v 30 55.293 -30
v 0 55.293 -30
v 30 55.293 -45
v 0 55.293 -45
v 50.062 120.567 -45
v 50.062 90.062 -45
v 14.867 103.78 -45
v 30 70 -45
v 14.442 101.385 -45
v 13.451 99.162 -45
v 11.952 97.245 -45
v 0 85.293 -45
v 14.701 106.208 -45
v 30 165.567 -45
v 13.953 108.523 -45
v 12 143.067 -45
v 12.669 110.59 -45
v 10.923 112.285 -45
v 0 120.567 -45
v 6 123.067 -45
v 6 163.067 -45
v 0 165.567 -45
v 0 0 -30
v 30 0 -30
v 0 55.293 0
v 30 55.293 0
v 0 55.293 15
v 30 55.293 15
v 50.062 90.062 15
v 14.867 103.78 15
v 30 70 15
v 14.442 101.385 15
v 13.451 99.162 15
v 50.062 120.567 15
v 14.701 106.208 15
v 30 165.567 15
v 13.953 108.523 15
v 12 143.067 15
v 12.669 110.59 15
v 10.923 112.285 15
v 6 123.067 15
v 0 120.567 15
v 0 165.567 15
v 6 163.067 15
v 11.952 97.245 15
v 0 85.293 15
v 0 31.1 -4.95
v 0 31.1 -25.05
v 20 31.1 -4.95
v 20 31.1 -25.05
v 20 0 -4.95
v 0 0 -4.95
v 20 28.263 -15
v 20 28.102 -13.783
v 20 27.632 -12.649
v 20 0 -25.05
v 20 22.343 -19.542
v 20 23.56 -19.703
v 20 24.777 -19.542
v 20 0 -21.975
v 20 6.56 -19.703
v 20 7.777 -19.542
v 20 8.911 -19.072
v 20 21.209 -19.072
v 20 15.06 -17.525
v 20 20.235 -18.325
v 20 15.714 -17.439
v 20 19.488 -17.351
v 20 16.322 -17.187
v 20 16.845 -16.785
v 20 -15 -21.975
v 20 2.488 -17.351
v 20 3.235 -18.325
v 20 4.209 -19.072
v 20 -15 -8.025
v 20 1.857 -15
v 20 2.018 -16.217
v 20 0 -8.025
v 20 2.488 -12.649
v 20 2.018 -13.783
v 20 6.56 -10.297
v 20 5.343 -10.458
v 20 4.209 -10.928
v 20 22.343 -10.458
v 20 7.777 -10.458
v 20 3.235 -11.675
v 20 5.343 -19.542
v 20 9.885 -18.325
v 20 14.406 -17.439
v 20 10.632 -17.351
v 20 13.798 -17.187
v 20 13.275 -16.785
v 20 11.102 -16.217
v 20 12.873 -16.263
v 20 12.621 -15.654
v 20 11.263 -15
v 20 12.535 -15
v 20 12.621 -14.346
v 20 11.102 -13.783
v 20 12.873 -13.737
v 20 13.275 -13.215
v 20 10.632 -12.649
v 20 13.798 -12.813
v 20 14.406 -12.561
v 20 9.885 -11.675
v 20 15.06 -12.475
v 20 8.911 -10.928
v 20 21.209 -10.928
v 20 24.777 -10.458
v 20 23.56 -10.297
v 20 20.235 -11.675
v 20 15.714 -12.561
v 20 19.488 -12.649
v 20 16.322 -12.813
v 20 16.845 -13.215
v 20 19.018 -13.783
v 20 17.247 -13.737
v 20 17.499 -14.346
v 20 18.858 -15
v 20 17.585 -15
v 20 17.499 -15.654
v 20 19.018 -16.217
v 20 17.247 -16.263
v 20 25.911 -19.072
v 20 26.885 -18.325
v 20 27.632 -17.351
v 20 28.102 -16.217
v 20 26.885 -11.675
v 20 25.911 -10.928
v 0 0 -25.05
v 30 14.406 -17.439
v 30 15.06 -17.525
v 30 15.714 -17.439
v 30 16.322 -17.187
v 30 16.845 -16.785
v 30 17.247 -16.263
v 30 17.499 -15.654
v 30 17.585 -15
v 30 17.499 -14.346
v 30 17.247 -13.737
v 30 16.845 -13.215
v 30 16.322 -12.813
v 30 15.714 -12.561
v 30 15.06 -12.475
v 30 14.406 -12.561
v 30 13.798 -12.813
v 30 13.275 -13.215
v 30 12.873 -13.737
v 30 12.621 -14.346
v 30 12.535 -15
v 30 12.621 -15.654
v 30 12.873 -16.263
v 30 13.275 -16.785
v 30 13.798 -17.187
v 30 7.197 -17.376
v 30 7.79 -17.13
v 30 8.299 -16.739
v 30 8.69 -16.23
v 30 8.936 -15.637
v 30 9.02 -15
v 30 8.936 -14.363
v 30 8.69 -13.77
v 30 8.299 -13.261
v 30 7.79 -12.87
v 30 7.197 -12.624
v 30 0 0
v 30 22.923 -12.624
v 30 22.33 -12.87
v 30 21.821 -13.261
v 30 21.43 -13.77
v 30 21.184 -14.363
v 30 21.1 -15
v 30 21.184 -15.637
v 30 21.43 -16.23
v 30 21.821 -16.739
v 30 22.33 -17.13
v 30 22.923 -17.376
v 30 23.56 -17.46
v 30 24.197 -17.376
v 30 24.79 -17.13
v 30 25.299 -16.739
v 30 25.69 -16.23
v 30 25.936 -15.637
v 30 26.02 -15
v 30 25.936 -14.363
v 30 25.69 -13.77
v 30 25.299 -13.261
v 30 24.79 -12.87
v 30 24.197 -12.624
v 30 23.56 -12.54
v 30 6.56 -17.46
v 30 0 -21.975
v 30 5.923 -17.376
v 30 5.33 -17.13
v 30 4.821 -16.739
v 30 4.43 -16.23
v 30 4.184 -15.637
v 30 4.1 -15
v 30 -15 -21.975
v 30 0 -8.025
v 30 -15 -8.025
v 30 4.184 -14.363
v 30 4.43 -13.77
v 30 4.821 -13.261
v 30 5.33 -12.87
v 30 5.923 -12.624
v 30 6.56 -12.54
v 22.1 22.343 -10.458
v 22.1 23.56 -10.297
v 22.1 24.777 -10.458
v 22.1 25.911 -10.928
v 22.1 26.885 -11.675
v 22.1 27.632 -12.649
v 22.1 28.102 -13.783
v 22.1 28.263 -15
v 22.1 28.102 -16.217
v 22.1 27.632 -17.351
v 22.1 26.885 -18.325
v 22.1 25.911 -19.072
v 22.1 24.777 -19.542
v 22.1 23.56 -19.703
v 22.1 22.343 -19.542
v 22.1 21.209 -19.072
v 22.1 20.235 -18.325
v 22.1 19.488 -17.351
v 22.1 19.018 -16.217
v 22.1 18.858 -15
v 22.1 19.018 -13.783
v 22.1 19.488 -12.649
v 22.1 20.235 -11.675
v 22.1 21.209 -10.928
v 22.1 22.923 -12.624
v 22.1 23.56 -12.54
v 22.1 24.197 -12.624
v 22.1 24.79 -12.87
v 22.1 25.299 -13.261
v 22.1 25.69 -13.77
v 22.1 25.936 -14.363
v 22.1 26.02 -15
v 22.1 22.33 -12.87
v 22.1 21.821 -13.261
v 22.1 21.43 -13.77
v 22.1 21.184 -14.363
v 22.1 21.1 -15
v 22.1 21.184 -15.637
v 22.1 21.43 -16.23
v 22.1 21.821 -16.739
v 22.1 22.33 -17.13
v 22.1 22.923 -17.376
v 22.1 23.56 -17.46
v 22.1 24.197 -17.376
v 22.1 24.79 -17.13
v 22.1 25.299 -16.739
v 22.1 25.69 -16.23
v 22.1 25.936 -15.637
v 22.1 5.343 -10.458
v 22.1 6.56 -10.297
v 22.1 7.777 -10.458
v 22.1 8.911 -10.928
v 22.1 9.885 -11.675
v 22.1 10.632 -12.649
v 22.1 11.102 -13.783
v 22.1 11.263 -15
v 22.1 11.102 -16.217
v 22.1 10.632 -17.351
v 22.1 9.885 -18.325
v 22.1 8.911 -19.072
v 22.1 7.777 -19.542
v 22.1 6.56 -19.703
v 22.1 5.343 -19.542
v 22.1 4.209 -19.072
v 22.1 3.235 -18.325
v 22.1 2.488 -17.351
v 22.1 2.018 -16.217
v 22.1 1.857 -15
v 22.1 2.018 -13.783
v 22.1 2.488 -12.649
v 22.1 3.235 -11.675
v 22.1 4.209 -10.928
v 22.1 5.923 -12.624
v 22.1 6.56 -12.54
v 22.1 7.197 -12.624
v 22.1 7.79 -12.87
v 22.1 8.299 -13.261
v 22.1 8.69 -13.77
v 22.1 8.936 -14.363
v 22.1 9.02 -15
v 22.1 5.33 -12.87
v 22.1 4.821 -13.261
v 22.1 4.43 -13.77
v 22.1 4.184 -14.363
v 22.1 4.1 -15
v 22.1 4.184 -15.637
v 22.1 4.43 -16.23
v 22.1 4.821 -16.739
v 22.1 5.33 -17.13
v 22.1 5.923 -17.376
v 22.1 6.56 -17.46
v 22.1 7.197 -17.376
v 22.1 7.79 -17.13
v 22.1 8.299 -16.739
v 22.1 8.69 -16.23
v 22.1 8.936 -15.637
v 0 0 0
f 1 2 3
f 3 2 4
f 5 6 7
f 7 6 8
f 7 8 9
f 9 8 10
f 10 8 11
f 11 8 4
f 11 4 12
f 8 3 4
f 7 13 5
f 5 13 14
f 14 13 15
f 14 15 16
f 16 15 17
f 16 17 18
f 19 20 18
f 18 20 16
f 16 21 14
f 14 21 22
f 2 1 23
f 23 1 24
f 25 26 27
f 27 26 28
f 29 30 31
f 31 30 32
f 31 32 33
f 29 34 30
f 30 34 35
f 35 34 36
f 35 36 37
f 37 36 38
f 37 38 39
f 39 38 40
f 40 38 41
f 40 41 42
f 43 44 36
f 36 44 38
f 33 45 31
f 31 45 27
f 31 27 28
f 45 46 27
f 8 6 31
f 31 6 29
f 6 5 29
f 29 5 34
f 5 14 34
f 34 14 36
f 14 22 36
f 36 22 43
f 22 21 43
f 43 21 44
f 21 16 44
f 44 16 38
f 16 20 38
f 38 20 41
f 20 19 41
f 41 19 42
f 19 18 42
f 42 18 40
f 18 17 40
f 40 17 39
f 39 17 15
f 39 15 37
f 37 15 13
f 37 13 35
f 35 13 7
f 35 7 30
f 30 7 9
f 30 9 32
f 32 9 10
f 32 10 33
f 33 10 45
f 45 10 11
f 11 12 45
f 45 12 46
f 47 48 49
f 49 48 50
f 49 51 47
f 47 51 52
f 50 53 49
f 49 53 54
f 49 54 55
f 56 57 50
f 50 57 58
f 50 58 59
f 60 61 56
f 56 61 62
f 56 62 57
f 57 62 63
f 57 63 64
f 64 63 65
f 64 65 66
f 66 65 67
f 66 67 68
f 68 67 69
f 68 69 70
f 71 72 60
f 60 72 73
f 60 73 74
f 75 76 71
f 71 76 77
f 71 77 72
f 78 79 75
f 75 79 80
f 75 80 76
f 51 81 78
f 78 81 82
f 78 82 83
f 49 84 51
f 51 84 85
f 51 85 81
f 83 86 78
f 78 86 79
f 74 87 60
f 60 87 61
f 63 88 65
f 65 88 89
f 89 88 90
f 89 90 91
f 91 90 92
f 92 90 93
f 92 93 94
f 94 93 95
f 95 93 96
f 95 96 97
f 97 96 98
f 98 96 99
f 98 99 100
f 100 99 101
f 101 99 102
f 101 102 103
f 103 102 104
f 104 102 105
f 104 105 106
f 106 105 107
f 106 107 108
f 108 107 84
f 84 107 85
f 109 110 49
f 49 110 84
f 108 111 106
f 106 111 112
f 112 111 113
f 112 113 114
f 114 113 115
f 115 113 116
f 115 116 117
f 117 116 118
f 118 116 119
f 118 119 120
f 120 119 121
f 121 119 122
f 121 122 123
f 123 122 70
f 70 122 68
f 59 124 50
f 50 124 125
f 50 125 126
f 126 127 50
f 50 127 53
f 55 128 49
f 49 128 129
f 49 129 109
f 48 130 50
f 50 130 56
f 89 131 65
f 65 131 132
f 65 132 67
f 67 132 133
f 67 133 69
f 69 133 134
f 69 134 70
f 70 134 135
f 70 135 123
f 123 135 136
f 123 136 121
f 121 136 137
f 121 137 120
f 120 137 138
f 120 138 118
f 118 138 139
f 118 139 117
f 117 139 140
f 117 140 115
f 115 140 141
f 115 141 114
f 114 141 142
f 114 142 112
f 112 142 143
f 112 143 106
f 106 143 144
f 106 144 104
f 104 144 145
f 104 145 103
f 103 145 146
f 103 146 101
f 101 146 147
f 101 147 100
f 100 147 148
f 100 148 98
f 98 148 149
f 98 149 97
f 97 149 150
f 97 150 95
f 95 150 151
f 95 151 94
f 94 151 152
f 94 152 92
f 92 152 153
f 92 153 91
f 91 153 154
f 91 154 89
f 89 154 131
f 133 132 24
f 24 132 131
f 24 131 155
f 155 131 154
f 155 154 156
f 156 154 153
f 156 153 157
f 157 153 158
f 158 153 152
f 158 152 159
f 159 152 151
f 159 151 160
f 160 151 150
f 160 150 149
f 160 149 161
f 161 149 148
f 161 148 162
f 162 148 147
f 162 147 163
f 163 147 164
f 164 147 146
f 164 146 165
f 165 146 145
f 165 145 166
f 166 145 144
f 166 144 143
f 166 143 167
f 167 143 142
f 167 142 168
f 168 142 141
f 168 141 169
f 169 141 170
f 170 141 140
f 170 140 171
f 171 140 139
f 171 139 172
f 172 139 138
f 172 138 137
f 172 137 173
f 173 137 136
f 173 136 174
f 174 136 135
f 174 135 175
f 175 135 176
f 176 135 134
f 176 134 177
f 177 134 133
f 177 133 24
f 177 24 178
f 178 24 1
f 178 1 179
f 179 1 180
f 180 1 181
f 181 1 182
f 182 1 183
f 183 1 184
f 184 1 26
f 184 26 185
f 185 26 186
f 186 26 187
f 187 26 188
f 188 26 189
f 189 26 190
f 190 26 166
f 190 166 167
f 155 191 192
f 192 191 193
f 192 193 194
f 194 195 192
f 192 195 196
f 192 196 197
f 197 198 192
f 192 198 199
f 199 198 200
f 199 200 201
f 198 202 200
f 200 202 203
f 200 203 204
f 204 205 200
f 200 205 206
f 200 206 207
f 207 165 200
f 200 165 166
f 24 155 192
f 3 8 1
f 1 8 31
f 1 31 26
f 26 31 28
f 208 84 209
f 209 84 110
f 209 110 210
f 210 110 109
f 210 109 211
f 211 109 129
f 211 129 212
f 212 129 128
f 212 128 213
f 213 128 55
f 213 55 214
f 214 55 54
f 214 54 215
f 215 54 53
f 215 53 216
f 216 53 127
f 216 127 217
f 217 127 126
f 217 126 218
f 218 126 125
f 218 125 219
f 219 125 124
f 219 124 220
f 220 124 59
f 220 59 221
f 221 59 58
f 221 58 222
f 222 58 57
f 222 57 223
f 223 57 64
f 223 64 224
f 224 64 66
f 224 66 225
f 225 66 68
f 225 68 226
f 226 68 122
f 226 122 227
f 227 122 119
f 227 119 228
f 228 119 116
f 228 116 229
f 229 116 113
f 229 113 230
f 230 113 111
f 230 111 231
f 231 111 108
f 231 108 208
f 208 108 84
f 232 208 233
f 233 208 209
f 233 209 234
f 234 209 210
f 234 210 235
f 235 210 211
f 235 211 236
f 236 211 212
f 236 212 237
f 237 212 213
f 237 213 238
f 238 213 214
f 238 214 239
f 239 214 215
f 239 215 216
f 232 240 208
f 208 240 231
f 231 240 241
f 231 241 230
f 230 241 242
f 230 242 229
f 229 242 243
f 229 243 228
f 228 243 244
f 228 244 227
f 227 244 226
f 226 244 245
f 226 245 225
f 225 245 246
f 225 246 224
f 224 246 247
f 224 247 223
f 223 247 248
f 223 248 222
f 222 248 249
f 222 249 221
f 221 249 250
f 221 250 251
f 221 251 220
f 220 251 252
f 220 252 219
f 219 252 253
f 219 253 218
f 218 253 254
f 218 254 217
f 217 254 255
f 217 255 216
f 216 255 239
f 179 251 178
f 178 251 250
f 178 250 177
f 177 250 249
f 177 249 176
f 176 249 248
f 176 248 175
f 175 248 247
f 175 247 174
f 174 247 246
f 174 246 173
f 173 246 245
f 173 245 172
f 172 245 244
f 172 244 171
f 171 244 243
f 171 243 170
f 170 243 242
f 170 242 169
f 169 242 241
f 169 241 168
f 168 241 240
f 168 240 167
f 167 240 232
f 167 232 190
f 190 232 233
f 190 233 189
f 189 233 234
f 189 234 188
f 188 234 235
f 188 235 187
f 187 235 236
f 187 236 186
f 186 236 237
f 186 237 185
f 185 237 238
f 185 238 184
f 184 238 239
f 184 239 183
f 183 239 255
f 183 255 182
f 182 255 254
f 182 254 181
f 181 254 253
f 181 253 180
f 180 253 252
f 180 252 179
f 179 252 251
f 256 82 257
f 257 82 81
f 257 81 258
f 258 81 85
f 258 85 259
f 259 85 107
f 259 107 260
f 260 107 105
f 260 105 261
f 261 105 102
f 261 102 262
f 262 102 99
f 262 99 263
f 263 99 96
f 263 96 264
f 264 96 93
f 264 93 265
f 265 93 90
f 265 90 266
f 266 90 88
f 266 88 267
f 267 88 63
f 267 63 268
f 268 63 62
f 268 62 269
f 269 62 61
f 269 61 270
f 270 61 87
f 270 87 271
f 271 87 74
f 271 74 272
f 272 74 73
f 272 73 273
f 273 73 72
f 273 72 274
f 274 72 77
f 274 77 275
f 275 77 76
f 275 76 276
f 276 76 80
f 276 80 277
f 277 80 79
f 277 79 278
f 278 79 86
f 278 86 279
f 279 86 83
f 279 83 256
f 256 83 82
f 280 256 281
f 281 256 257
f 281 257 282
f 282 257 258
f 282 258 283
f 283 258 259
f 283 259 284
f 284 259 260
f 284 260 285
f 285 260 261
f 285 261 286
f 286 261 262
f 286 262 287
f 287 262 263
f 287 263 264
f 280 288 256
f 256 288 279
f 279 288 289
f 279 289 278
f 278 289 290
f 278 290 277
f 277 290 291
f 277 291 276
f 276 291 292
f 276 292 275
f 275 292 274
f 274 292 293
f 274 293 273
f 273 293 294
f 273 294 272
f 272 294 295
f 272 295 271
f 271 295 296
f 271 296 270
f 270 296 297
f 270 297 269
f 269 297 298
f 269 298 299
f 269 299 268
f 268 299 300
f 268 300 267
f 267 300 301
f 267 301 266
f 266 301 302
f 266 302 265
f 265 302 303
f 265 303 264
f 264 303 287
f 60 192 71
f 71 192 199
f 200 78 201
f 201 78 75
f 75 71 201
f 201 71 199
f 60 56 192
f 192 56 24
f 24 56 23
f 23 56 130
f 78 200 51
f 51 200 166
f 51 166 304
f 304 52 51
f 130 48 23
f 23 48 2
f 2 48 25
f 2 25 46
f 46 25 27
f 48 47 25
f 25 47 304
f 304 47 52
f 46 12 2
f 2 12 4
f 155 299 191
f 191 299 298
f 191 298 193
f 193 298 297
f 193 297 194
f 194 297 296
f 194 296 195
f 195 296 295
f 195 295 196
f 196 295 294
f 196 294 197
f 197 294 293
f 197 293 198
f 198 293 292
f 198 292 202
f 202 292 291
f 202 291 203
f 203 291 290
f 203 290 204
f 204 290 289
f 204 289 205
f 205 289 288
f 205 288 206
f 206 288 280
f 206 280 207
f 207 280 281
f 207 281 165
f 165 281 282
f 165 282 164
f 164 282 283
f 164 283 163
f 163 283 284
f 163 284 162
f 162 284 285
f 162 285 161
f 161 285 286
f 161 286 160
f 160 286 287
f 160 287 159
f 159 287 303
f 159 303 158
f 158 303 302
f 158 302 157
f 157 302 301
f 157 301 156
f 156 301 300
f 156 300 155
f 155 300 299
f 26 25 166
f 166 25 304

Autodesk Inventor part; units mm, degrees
ref_plane "YZ Plane" through (0, 0, 0) normal (1, 0, 0) x (0, 1, 0)
ref_plane "XZ Plane" through (0, 0, 0) normal (0, 1, 0) x (-1, 0, 0)
sketch "Sketch1" plane through (0, 0, 0) normal (0, 0, 1) x (1, 0, 0)
  line L0 (0, 0) -> (25, 0)
  line L1 (25, 0) -> (25, 40)
  line L2 (25, 40) -> (0, 40)
  line L3 (0, 40) -> (0, 0)
  dimension "d1" = 25
  dimension "d2" = 40
  dimension "d3" = 25
extrude "Extrusion1" add sketch "Sketch1" against normal blind 30
sketch "Sketch2" plane through (25, 0, 0) normal (1, 0, 0) x (0, 0, -1)
  line L0 (0, 0) -> (30, 0) projected
  circle A0 centre (15, 6.56) radius 2.46
extrude "Extrusion2" cut sketch "Sketch2" against normal blind 30
sketch "Sketch3" plane through (0, 0, 0) normal (-1, 0, 0) x (0, 0, 1)
  line L0 (0, 0) -> (-30, 0) projected
  line L1 (-25.05, 0) -> (-4.95, 0)
  line L2 (-4.95, 0) -> (-4.95, 33.12)
  line L3 (-4.95, 33.12) -> (-25.05, 33.12)
  line L4 (-25.05, 33.12) -> (-25.05, 0)
  dimension "d11" = 20.1
extrude "Extrusion3" cut sketch "Sketch3" against normal blind 20
sketch "Sketch4" plane through (0, 0, 0) normal (0, -1, 0) x (1, 0, 0)
  line L0 (20, -4.95) -> (20, -25.05) projected
  line L1 (20, -15) -> (25, -15)
  line L2 (25, 0) -> (25, -30) projected
  line L3 (20, -8.025) -> (25, -8.025)
  line L4 (25, -8.025) -> (25, -21.975)
  line L5 (25, -21.975) -> (20, -21.975)
  line L6 (20, -21.975) -> (20, -8.025)
  line L7 (20, -8.025) -> (25, -21.975) construction
  line L8 (25, -8.025) -> (20, -21.975) construction
  line L9 (25, -12.54) -> (25, -17.46) projected
  point P0 (0, 0)
  point P1 (22.5, -15)
  dimension "d14" = 13.95
extrude "Extrusion4" add sketch "Sketch4" along normal blind 15
sketch "Sketch5" plane through (20, 0, 0) normal (-1, 0, 0) x (0, 0, 1)
  circle A0 centre (-15, 6.56) radius 2.46 projected
  circle A1 centre (-15, 6.56) radius 4.7025
  circle A2 centre (-15, 6.56) radius 2.46 projected
  circle A3 centre (-15, 6.56) radius 2.46
  point P0 (0, 0)
  dimension "d17" = 9.405
extrude "Extrusion5" cut sketch "Sketch5" against normal blind 2.1
sketch "Sketch6" plane through (25, 0, 0) normal (1, 0, 0) x (0, 0, -1)
  circle A0 centre (15, 6.56) radius 4.7025 projected
  line L0 (15, 6.56) -> (15, 23.56)
  circle A1 centre (15, 23.56) radius 2.46
  point P0 (0, 0)
  dimension "d20" = 17
  dimension "d21" = 4.92
extrude "Extrusion6" cut sketch "Sketch6" against normal blind 10 contours A1
sketch "Sketch7" plane through (20, 0, 0) normal (-1, 0, 0) x (0, 0, 1)
  circle A0 centre (-15, 23.56) radius 2.46 projected
  circle A1 centre (-15, 23.56) radius 4.7025
  point P0 (0, 0)
  dimension "d24" = 9.405
extrude "Extrusion7" cut sketch "Sketch7" against normal blind 2.1
sketch "Sketch9" plane through (25, 0, 0) normal (1, 0, 0) x (0, 0, -1)
  circle A0 centre (15, 6.56) radius 2.46 projected
  circle A1 centre (15, 6.56) radius 2.46
  circle A2 centre (15, 23.56) radius 2.46 projected
  circle A3 centre (15, 23.56) radius 2.46
  line L0 (30, 40) -> (30, 0) projected
  line L1 (30, 0) -> (30, 40)
  line L2 (30, 40) -> (0, 40)
  line L3 (0, 40) -> (0, 0)
  line L4 (0, 0) -> (8.025, 0) projected
  line L5 (21.975, 0) -> (21.975, -15)
  line L6 (21.975, -15) -> (8.025, -15)
  line L7 (8.025, -15) -> (8.025, 0)
  line L8 (0, 0) -> (8.025, 0)
  line L9 (21.975, 0) -> (30, 0)
extrude "Extrusion8" add sketch "Sketch9" along normal blind 5
sketch "Sketch10" plane through (0, 40, 0) normal (0, 1, 0) x (1, 0, 0)
  line L0 (0, 30) -> (30, 30) projected
  line L1 (30, 0) -> (0, 0) projected
  line L2 (0, 30) -> (30, 30)
  line L3 (30, 30) -> (30, 0)
  line L4 (30, 0) -> (0, 0)
  line L5 (0, 0) -> (0, 30)
extrude "Extrusion9" add sketch "Sketch10" along normal blind 30
sketch "Sketch12" plane through (30, 0, 0) normal (1, 0, 0) x (0, 0, -1)
  circle A0 centre (15, 6.56) radius 2.46 projected
  line L0 (15, 6.56) -> (15, 15.06)
  circle A1 centre (15, 15.06) radius 2.525
  point P0 (0, 0)
  dimension "d31" = 8.5
  dimension "d33" = 5.05
extrude "Extrusion10" cut sketch "Sketch12" against normal blind 30 contours A1
sketch "Sketch15" plane through (0, 0, -25.05) normal (-1, 0, 0) x (0, 0, 1)
  line L0 (0, 33.12) -> (20.1, 33.12) projected
  line L1 (20.1, 33.12) -> (20.1, 0) projected
  line L2 (0, 33.12) -> (20.1, 33.12)
  line L3 (20.1, 33.12) -> (20.1, 31.1)
  line L4 (20.1, 31.1) -> (0, 31.1)
  line L5 (0, 31.1) -> (0, 33.12)
  point P0 (25.05, 0)
  dimension "d57" = 2.02
extrude "Extrusion13" add sketch "Sketch15" against normal blind 20
sketch "Sketch17" plane through (0, 0, 0) normal (0, 0, 1) x (1, 0, 0)
  line L0 (0, 70) -> (30, 70) projected
  line L1 (30, 70) -> (50.0622, 90.0622)
  line L2 (30, 70) -> (80, 70) construction
  line L3 (11.9522, 97.2454) -> (0, 85.2932)
  line L4 (0, 70) -> (0, 85.2932)
  line L5 (0, 70) -> (0, 0) projected
  line L6 (0, 70) -> (30, 70)
  line L7 (10.923, 112.2849) -> (0, 120.567)
  line L8 (50.0622, 105.3553) -> (50.0622, 120.567)
  line L9 (50.0622, 105.3553) -> (50.0622, 90.0622)
  arc A0 (11.9522, 97.2454) -> (10.923, 112.2849) centre (4.8811, 104.3165) ccw
  line L10 (0, 165.567) -> (30, 165.567)
  line L11 (30, 165.567) -> (50.0622, 120.567)
  line L12 (6, 163.067) -> (0, 165.567)
  line L13 (6, 123.067) -> (0, 120.567)
  line L14 (6, 123.067) -> (12, 143.067)
  line L15 (12, 143.067) -> (6, 163.067)
  dimension "d61" = 45
  dimension "d62" = 32.0271
  dimension "d72" = 10
extrude "Extrusion14" add sketch "Sketch17" against normal blind 30
sketch "Sketch24" plane through (0, 0, 0) normal (0, 0, 1) x (1, 0, 0)
  line L0 (30, 70) -> (50.0622, 90.0622) projected
  line L1 (30, 70) -> (50.0622, 90.0622)
  line L2 (50.0622, 90.0622) -> (50.0622, 120.567) projected
  line L3 (50.0622, 90.0622) -> (50.0622, 120.567)
  line L4 (30, 165.567) -> (50.0622, 120.567) projected
  line L5 (50.0622, 120.567) -> (30, 165.567)
  line L6 (0, 165.567) -> (30, 165.567) projected
  line L7 (30, 165.567) -> (0, 165.567)
  line L8 (6, 163.067) -> (0, 165.567) projected
  line L9 (0, 165.567) -> (6, 163.067)
  line L10 (12, 143.067) -> (6, 163.067) projected
  line L11 (6, 163.067) -> (12, 143.067)
  line L12 (6, 123.067) -> (12, 143.067) projected
  line L13 (12, 143.067) -> (6, 123.067)
  line L14 (0, 120.567) -> (6, 123.067) projected
  line L15 (6, 123.067) -> (0, 120.567)
  line L16 (10.923, 112.2849) -> (0, 120.567) projected
  line L17 (0, 120.567) -> (10.923, 112.2849)
  line L18 (0, 85.2932) -> (11.9522, 97.2454) projected
  line L19 (11.9522, 97.2454) -> (0, 85.2932)
  line L20 (0, 85.2932) -> (0, 55.2932)
  line L21 (0, 0) -> (0, 85.2932) projected
  line L22 (0, 55.2932) -> (30, 55.2932)
  line L23 (30, 0) -> (30, 70) projected
  line L24 (30, 55.2932) -> (30, 70)
  arc A0 (11.9522, 97.2454) -> (10.923, 112.2849) centre (4.8811, 104.3165) ccw projected
  arc A1 (11.9522, 97.2454) -> (10.923, 112.2849) centre (4.8811, 104.3165) ccw
  dimension "d102" = 30
extrude "Extrusion15" add sketch "Sketch24" along normal blind 15
ref_plane "Work Plane1" through (0, 0, -15) normal (0, 0, 1) x (1, 0, 0)
mirror "Mirror1" about plane through (0, 0, -15) normal (0, 0, 1) of "Extrusion15"
properties part number "rec_c_40mm_x_60mm"
